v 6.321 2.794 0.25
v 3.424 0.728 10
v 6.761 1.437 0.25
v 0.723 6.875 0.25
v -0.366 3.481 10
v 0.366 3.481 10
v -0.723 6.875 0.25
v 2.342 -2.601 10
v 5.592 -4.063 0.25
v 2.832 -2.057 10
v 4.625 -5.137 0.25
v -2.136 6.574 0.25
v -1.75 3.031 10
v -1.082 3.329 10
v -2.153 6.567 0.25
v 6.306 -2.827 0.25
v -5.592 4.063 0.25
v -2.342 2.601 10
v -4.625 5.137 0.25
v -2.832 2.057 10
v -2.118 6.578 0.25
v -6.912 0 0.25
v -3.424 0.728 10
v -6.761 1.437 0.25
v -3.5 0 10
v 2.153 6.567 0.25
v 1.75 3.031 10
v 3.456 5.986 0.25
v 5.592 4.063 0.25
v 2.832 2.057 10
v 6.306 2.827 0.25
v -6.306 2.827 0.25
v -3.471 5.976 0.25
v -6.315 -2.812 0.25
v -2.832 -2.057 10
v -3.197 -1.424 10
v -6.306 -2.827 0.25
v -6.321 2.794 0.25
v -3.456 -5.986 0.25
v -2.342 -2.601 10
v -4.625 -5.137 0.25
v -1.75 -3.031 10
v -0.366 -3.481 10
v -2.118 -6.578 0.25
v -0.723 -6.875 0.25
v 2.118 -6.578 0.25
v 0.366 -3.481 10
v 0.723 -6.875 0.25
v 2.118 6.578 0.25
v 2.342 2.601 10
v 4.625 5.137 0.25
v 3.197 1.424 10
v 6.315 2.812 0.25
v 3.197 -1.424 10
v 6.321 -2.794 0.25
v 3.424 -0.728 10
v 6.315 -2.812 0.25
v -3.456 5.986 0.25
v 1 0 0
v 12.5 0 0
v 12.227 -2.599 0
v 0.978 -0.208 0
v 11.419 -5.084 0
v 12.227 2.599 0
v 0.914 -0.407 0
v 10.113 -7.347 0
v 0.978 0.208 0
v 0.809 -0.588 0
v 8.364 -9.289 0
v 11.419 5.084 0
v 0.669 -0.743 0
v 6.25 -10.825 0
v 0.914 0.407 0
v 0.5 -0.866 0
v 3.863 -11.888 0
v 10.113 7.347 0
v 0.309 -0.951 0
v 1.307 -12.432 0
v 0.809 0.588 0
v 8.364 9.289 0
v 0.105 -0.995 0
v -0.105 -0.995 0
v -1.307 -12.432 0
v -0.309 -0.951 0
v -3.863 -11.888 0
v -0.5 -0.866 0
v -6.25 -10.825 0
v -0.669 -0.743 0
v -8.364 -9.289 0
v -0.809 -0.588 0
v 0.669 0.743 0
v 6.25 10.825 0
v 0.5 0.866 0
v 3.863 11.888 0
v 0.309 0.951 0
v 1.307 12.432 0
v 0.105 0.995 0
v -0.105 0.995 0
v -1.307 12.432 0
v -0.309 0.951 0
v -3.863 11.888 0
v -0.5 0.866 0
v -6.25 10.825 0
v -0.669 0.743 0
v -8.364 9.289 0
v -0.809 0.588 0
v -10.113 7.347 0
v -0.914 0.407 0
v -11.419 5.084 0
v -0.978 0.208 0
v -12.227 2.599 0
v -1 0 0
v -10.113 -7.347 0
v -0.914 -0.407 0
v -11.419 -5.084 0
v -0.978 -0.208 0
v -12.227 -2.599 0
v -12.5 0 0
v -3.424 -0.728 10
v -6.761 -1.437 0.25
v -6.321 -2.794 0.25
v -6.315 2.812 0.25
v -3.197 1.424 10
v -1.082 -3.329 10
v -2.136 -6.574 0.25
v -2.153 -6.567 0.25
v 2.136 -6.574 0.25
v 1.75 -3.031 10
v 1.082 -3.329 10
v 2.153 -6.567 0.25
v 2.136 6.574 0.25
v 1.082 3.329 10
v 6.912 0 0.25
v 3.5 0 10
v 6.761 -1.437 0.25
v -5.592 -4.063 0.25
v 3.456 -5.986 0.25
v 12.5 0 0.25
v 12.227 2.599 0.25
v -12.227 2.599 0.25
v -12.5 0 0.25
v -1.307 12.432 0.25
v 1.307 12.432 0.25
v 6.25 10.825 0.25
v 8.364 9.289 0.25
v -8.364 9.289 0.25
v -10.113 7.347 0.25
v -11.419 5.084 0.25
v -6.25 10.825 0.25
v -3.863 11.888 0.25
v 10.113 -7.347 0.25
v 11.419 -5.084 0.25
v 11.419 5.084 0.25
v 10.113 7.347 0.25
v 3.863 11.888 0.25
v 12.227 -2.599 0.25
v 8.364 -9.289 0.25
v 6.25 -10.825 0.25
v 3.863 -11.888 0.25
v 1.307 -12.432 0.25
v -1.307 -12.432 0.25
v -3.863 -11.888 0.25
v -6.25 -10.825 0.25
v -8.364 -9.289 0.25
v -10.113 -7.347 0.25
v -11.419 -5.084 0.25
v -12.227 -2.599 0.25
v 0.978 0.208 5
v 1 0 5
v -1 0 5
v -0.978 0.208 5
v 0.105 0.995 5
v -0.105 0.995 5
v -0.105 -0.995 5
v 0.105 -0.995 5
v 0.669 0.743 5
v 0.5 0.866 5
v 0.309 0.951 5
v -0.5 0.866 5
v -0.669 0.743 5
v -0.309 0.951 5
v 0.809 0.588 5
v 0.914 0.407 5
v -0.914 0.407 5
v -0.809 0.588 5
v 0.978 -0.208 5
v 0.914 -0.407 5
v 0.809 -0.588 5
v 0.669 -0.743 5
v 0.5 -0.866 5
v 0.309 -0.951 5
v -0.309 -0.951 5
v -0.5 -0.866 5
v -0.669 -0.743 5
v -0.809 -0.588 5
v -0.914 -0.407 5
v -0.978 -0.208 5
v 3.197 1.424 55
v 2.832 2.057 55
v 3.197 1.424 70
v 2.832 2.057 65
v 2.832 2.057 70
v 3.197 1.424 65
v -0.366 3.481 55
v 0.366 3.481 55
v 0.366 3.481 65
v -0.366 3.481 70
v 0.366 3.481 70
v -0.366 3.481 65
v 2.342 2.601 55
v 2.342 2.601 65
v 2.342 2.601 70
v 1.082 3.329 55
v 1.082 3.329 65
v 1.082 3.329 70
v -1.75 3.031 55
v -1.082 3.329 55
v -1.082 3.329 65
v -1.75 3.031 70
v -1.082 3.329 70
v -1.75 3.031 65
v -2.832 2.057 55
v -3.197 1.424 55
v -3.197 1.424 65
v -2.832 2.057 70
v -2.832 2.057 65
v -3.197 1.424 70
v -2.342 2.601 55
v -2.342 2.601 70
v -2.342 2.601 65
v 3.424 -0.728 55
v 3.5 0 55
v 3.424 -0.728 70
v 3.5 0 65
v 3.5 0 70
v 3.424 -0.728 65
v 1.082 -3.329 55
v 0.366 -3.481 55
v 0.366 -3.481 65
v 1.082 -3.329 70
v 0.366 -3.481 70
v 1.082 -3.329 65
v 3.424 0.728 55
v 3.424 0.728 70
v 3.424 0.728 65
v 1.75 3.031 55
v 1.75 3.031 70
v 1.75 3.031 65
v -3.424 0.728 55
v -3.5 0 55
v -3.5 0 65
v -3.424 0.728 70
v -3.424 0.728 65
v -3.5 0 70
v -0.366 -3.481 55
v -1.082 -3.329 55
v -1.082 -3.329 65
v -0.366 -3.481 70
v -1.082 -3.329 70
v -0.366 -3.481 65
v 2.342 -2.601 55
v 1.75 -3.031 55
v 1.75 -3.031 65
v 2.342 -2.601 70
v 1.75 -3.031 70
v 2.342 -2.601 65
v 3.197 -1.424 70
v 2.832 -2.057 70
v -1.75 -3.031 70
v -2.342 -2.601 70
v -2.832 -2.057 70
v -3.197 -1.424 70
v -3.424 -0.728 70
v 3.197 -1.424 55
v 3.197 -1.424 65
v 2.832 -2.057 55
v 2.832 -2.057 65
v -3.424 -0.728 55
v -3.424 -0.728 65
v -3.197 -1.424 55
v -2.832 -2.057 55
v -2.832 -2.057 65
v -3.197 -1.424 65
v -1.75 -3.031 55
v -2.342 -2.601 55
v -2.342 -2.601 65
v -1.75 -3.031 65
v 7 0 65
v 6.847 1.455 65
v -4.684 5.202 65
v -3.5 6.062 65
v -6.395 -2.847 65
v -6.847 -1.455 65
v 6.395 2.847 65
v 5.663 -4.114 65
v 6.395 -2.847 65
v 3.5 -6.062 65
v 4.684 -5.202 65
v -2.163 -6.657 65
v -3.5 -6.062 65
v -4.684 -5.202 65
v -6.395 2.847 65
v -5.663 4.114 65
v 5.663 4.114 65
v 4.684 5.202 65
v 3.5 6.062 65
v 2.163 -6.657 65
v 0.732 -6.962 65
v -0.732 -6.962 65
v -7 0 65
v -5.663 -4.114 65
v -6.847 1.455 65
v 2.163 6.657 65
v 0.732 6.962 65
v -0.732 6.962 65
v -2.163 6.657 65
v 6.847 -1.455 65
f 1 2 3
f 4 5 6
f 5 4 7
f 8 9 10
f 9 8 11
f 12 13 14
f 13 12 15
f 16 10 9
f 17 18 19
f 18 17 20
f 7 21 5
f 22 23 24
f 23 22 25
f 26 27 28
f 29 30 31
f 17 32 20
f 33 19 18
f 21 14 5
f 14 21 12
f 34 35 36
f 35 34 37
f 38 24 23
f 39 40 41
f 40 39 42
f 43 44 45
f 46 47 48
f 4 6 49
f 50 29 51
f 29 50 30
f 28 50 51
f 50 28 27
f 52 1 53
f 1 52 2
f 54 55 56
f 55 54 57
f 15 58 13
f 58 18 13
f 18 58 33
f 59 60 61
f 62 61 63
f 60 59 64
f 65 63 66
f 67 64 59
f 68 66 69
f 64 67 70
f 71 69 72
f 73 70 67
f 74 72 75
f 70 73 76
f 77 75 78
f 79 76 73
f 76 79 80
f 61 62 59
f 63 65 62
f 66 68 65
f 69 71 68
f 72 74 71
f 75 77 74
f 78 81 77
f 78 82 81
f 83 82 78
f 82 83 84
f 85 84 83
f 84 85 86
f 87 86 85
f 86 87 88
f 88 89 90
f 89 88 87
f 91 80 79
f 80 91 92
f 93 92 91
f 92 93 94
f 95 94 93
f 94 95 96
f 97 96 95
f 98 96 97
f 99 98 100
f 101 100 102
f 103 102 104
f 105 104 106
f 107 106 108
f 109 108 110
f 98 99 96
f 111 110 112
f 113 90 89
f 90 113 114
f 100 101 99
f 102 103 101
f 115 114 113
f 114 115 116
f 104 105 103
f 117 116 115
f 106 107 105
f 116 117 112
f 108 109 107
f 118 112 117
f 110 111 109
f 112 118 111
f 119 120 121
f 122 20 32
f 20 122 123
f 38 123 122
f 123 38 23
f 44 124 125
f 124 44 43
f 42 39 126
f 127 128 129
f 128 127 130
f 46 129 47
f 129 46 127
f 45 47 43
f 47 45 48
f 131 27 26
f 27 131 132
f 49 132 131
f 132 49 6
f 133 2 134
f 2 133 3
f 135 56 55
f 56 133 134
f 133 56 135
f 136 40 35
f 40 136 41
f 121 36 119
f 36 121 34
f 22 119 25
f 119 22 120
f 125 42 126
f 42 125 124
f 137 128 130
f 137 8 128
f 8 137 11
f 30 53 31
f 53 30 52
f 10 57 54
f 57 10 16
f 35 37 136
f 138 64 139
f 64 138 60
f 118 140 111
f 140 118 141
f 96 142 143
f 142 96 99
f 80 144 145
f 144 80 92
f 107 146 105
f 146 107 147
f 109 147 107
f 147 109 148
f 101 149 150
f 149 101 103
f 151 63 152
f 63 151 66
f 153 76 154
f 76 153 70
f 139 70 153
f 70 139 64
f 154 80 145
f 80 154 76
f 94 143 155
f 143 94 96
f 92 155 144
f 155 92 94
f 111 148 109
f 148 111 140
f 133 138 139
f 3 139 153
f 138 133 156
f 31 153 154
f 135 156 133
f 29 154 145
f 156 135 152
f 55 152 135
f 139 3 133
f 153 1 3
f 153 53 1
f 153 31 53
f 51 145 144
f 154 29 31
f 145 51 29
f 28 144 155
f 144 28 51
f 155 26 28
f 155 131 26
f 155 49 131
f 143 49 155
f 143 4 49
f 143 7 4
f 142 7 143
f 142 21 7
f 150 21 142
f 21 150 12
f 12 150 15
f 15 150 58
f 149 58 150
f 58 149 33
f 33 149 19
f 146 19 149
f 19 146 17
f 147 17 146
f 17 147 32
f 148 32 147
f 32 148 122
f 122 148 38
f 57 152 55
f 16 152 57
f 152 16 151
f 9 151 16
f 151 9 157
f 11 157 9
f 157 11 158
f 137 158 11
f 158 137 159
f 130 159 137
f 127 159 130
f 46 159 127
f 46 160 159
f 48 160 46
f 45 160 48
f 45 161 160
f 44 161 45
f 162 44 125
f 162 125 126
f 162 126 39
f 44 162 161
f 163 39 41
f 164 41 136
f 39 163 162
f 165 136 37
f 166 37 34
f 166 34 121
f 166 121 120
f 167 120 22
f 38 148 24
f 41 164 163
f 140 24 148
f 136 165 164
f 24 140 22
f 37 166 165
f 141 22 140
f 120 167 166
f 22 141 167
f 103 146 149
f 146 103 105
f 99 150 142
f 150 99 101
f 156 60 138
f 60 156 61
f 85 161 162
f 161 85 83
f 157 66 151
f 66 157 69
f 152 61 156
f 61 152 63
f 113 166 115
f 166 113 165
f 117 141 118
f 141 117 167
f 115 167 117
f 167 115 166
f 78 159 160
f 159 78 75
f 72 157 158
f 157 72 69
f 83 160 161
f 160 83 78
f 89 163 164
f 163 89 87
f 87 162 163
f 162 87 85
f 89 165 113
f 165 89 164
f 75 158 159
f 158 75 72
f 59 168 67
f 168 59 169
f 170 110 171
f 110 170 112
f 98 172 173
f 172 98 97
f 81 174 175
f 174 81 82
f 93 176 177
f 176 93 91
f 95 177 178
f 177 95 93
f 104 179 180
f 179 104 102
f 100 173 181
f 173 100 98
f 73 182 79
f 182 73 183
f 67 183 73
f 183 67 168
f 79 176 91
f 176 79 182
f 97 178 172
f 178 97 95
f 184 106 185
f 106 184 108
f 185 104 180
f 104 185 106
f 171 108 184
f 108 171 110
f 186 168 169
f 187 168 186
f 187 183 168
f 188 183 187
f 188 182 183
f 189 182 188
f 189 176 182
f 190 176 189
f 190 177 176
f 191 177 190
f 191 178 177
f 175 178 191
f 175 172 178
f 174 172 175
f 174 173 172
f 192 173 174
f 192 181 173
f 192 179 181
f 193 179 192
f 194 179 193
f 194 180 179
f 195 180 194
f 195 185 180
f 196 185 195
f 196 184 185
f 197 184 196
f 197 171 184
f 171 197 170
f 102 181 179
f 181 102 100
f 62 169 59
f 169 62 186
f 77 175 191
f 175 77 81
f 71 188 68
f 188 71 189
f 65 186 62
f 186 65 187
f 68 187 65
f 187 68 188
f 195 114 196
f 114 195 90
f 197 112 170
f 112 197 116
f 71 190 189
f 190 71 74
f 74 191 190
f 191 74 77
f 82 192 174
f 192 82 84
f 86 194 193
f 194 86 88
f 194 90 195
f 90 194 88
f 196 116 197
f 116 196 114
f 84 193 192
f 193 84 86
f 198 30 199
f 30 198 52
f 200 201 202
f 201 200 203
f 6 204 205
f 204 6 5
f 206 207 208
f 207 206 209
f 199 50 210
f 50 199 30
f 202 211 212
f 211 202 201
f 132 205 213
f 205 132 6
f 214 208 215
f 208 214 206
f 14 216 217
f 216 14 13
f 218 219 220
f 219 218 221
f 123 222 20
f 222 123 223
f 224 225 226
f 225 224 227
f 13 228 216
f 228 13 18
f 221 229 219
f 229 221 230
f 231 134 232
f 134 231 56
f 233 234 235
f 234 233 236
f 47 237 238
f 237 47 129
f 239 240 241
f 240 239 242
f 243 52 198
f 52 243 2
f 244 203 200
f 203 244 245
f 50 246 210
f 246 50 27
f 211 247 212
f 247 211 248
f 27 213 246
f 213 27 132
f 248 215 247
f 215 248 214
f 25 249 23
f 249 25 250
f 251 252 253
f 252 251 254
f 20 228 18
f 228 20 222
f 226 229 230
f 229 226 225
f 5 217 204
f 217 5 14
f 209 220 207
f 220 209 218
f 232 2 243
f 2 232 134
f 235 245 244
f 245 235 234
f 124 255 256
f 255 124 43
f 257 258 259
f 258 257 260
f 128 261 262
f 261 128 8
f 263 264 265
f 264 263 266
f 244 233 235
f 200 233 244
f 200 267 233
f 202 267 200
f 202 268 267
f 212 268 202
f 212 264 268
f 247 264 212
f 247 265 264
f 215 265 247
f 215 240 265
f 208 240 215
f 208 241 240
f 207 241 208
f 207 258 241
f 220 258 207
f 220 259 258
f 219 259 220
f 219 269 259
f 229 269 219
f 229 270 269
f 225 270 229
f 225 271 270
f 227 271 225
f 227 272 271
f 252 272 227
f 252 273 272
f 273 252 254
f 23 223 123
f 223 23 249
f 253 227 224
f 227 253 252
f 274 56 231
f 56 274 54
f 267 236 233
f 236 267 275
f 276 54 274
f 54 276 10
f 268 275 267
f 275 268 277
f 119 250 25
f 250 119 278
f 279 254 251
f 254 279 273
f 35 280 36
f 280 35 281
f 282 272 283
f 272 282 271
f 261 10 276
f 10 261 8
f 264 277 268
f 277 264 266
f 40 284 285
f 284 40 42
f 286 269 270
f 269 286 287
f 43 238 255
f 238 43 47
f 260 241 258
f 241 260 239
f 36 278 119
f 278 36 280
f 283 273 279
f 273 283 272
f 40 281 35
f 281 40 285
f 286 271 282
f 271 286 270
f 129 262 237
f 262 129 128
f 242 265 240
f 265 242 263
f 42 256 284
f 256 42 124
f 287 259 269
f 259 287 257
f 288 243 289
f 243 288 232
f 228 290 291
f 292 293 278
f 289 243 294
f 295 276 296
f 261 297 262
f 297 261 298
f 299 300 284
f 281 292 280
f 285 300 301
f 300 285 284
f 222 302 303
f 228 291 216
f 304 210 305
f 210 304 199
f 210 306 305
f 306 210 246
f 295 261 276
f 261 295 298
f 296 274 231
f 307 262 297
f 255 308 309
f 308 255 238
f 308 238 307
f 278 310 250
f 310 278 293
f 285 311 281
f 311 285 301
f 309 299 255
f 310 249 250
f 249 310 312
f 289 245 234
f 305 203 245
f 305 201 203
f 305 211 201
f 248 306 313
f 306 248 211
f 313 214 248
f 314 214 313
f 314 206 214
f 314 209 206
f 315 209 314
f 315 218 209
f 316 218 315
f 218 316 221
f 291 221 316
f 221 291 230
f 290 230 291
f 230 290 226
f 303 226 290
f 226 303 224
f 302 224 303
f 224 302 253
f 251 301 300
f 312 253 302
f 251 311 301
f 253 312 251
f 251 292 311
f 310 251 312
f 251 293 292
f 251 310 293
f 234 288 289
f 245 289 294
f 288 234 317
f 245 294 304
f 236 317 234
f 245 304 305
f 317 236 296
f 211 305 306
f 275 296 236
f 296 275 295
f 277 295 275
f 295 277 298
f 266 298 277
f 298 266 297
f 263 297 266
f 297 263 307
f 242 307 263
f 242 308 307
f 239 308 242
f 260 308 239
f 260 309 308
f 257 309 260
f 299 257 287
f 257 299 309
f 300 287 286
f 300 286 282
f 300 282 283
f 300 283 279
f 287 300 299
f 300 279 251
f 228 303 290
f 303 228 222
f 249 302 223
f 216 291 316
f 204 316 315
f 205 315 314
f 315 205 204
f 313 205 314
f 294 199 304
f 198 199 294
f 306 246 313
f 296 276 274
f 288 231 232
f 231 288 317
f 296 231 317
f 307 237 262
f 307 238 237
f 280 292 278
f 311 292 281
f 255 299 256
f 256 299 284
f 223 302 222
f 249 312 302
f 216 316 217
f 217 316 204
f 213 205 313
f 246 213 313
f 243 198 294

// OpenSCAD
$fn=30;
difference(){
union(){
    cylinder(r1=7,r2=3.5,h=10);
    cylinder(d=25,h=0.25);
}
    cylinder(d=2,h=5);
}
translate([0,0,10])cylinder(d=7,h=60);
translate([0,0,55])cylinder(r1=3.5,r2=7,h=10);
